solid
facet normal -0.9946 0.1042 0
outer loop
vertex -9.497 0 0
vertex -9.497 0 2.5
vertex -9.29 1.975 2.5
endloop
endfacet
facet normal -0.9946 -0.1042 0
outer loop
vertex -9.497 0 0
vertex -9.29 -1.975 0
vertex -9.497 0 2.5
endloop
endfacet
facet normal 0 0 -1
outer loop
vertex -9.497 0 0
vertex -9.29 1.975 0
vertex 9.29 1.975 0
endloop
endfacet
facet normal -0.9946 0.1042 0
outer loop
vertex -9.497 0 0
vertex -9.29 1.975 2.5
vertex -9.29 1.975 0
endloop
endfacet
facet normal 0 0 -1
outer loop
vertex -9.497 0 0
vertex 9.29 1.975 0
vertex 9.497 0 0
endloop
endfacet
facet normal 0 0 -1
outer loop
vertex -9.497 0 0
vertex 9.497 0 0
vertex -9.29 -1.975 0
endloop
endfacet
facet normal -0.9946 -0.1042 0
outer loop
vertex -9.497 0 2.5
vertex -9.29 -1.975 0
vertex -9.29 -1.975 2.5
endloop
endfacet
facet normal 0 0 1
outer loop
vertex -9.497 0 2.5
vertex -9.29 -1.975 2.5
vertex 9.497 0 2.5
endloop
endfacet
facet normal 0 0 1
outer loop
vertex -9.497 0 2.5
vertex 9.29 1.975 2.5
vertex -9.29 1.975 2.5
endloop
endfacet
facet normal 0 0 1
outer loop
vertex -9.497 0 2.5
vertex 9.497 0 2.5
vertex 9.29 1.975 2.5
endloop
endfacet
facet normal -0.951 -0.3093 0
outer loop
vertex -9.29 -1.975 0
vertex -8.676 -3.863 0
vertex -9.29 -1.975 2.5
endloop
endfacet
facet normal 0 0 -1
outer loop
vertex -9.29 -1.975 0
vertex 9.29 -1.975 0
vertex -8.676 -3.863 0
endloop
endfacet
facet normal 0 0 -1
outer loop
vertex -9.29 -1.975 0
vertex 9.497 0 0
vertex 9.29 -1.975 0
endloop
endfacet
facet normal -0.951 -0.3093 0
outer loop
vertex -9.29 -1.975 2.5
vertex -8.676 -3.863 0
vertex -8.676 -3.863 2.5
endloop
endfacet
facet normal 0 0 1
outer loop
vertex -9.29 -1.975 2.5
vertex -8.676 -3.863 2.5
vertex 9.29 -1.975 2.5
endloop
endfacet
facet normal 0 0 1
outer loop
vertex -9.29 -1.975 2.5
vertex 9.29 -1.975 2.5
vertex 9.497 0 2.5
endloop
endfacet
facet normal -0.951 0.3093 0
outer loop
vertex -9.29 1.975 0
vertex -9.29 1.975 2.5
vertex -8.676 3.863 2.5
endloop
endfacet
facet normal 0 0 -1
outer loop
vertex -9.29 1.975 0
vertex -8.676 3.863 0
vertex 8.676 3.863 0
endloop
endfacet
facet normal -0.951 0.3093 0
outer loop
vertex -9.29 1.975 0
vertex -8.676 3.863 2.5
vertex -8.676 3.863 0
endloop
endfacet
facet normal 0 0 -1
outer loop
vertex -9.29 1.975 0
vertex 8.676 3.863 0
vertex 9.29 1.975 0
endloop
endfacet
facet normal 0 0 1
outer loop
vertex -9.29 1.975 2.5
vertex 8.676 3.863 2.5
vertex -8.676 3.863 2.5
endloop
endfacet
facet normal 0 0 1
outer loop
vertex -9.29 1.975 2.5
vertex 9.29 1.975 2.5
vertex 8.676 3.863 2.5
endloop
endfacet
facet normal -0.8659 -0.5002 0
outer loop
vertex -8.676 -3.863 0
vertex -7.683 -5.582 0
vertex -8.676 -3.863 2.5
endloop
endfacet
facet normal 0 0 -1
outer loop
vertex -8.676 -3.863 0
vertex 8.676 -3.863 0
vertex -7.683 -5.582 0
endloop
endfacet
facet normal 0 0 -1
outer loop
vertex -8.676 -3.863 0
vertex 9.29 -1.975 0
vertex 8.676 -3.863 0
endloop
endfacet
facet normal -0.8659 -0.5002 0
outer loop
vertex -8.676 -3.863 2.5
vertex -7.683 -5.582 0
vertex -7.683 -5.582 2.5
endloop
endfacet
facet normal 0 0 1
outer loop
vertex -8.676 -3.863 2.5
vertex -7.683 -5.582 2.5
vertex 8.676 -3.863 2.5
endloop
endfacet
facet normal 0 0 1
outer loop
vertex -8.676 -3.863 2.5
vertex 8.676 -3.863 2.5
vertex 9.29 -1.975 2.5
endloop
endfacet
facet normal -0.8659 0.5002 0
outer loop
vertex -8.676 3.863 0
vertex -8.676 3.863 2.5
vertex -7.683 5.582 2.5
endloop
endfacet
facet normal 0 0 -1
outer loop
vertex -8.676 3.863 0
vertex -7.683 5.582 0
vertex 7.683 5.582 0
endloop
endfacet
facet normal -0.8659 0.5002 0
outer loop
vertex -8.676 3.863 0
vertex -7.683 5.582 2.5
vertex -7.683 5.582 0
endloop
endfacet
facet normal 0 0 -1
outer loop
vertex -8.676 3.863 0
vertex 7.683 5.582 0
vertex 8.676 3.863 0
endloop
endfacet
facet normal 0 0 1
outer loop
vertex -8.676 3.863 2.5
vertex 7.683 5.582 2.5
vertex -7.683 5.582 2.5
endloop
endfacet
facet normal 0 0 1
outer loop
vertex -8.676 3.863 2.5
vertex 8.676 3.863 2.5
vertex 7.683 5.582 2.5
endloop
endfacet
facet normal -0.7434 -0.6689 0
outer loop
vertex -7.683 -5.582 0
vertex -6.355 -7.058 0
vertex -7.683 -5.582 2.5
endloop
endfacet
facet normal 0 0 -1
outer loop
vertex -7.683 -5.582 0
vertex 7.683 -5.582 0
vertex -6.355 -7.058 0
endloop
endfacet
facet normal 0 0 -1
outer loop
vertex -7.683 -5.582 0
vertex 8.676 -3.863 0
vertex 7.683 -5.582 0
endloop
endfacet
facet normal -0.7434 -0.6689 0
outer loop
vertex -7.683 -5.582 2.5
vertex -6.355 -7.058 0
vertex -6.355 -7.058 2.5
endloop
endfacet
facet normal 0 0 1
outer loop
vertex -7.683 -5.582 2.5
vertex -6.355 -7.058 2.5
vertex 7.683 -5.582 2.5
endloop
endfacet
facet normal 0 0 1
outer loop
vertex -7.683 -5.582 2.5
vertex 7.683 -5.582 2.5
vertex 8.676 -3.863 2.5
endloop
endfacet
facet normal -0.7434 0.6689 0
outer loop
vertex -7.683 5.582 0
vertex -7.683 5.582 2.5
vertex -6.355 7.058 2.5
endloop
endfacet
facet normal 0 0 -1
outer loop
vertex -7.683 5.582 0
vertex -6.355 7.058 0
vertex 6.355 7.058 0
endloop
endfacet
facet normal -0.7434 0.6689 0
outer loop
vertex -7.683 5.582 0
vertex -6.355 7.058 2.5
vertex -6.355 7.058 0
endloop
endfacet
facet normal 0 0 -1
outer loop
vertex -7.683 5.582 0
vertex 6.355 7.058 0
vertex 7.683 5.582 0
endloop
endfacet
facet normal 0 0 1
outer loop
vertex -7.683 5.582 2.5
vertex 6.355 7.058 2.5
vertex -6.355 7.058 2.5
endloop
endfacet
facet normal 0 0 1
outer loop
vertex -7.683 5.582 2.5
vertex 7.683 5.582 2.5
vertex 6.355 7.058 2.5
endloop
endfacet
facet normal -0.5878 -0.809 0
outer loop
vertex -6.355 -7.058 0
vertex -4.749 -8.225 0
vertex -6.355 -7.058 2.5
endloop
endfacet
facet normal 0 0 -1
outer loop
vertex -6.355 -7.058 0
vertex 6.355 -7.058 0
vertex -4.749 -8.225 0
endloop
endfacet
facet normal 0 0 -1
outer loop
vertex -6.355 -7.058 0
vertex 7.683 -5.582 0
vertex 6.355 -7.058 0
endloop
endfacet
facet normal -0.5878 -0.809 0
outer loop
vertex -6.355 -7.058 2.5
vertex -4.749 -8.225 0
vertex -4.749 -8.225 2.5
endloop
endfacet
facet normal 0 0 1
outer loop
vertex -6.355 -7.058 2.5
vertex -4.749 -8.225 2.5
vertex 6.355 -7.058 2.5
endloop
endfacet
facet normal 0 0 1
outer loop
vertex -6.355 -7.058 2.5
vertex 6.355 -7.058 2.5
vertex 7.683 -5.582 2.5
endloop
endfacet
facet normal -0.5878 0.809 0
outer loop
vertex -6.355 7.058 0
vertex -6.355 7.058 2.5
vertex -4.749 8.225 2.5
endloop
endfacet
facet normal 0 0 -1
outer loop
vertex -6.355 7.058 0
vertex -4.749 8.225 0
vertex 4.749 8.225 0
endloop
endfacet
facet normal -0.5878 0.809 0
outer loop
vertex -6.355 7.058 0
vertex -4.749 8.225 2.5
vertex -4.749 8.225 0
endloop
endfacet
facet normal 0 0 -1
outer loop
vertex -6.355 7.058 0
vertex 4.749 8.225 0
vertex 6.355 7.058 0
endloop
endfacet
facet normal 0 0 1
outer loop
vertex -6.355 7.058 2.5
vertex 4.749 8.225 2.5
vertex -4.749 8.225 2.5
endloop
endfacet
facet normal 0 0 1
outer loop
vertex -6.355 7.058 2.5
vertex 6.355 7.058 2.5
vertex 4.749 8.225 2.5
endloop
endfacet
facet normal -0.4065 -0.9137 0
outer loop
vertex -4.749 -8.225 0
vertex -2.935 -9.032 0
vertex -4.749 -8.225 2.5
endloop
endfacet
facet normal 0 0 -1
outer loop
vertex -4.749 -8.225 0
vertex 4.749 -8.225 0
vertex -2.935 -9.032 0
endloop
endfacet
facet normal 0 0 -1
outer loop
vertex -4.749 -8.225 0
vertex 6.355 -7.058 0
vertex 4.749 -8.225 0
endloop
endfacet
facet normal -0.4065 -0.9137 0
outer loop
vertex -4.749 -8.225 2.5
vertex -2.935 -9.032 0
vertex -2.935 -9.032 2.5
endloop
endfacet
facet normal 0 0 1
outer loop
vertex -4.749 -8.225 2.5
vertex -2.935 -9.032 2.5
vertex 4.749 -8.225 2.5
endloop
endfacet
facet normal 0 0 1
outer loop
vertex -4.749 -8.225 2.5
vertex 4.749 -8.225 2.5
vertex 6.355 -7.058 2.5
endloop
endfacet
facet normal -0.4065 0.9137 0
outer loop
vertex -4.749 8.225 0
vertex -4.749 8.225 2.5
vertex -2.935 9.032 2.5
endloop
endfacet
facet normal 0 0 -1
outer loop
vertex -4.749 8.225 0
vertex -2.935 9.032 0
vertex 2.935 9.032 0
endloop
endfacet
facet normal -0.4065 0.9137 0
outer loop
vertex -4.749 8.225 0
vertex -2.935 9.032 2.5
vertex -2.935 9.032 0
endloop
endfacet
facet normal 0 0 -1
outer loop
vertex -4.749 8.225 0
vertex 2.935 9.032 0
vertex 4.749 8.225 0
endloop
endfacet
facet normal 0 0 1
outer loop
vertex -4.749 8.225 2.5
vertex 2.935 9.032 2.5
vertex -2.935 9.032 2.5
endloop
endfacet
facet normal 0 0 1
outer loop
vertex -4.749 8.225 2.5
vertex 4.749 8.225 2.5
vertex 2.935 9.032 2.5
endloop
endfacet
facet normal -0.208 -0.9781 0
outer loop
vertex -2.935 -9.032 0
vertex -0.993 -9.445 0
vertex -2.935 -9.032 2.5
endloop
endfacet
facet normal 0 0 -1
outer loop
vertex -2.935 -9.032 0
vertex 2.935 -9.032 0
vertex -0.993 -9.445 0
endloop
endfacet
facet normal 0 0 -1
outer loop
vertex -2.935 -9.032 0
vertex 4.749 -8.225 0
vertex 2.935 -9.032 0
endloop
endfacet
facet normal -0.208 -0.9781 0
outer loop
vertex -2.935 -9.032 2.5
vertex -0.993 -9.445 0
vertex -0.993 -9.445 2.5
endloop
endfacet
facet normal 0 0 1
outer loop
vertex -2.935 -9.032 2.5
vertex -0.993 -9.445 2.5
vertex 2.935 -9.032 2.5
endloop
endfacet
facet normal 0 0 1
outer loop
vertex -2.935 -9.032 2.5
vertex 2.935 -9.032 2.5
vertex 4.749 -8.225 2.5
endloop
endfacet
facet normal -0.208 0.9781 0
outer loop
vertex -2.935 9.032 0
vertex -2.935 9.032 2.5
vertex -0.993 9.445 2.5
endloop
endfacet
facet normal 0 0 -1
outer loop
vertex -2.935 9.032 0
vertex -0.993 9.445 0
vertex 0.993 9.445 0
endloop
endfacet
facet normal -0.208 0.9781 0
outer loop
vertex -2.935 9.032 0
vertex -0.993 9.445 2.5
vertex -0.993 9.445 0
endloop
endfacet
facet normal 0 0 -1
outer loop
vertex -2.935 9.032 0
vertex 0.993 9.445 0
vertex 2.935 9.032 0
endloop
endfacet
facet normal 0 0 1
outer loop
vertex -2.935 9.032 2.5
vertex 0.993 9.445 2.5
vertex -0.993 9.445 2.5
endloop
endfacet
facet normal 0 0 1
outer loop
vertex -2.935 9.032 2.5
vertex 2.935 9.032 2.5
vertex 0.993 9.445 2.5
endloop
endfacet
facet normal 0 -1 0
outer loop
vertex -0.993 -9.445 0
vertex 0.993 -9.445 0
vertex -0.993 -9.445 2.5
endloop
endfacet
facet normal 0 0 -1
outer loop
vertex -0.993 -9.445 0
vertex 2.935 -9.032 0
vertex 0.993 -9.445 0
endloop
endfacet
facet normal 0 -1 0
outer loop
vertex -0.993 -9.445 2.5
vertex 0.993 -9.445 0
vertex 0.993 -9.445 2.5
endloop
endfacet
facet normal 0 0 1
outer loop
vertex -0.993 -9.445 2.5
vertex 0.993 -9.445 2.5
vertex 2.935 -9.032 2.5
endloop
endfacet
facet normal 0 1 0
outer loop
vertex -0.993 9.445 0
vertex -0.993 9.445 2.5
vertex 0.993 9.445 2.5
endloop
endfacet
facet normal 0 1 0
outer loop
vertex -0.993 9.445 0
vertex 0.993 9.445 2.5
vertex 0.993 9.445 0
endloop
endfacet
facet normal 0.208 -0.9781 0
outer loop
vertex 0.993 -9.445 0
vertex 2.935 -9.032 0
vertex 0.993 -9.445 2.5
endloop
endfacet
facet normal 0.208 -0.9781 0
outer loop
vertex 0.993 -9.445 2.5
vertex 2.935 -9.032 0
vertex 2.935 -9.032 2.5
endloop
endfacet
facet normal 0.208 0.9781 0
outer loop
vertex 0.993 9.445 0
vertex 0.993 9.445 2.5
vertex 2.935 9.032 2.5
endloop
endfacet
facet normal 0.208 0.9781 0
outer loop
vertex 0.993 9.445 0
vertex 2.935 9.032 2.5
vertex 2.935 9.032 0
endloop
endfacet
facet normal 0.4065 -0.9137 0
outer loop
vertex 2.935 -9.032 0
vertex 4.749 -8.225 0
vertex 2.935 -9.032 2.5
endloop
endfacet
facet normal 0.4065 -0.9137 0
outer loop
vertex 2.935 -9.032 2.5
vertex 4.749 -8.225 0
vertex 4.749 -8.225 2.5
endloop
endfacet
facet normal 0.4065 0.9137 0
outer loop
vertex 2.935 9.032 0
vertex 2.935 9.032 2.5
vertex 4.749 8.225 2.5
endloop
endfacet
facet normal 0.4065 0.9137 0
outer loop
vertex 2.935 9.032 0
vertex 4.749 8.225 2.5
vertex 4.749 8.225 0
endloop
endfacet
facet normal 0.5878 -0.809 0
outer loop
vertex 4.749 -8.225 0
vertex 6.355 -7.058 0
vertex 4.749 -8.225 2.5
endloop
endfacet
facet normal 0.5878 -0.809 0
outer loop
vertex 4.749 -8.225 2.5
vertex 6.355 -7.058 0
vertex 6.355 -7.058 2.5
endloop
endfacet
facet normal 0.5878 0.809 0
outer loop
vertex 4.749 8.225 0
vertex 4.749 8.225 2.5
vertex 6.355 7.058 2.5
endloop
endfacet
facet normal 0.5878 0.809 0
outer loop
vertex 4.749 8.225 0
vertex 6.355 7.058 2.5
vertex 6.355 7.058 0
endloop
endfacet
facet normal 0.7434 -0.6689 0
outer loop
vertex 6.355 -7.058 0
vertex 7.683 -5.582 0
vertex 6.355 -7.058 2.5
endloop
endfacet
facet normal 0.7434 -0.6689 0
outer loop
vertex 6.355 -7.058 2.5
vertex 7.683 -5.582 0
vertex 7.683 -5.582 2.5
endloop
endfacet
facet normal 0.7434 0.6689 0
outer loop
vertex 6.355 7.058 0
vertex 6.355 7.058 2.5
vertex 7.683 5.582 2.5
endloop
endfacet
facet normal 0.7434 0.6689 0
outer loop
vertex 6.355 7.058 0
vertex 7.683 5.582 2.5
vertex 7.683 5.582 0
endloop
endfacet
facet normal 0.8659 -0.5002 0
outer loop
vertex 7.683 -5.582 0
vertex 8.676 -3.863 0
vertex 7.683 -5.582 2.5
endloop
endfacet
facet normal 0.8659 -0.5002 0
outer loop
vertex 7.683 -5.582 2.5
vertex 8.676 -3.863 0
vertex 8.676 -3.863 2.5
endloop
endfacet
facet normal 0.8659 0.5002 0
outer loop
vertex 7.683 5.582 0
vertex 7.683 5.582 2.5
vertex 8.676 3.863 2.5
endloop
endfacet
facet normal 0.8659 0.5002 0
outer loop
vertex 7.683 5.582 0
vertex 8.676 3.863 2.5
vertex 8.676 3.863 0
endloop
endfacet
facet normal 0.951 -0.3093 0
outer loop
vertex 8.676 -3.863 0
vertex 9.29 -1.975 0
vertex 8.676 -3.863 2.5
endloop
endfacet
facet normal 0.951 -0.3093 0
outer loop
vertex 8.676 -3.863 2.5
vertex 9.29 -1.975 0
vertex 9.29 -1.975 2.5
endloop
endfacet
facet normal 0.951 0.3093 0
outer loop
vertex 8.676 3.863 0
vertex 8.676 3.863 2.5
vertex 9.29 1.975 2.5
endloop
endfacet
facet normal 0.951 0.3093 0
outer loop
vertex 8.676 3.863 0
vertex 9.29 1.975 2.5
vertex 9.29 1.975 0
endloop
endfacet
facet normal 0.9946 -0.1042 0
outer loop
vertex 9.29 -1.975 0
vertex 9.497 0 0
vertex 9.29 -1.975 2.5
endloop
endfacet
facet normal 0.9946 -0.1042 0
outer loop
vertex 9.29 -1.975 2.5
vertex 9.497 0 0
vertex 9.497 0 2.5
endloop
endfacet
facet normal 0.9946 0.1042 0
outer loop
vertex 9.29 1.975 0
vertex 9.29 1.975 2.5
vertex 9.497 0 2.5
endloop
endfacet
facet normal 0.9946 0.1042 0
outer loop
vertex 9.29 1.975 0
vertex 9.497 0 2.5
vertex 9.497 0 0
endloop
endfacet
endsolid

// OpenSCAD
R = is_undef(edge_r) ? 0.5 : edge_r;
base_t = is_undef(base_t) ? 3.0 : base_t;
echo(R=R, base_t=base_t);
translate([0,0,0]) linear_extrude(height=base_t - R + 1e-4) offset(delta=-R) circle(r=10);
